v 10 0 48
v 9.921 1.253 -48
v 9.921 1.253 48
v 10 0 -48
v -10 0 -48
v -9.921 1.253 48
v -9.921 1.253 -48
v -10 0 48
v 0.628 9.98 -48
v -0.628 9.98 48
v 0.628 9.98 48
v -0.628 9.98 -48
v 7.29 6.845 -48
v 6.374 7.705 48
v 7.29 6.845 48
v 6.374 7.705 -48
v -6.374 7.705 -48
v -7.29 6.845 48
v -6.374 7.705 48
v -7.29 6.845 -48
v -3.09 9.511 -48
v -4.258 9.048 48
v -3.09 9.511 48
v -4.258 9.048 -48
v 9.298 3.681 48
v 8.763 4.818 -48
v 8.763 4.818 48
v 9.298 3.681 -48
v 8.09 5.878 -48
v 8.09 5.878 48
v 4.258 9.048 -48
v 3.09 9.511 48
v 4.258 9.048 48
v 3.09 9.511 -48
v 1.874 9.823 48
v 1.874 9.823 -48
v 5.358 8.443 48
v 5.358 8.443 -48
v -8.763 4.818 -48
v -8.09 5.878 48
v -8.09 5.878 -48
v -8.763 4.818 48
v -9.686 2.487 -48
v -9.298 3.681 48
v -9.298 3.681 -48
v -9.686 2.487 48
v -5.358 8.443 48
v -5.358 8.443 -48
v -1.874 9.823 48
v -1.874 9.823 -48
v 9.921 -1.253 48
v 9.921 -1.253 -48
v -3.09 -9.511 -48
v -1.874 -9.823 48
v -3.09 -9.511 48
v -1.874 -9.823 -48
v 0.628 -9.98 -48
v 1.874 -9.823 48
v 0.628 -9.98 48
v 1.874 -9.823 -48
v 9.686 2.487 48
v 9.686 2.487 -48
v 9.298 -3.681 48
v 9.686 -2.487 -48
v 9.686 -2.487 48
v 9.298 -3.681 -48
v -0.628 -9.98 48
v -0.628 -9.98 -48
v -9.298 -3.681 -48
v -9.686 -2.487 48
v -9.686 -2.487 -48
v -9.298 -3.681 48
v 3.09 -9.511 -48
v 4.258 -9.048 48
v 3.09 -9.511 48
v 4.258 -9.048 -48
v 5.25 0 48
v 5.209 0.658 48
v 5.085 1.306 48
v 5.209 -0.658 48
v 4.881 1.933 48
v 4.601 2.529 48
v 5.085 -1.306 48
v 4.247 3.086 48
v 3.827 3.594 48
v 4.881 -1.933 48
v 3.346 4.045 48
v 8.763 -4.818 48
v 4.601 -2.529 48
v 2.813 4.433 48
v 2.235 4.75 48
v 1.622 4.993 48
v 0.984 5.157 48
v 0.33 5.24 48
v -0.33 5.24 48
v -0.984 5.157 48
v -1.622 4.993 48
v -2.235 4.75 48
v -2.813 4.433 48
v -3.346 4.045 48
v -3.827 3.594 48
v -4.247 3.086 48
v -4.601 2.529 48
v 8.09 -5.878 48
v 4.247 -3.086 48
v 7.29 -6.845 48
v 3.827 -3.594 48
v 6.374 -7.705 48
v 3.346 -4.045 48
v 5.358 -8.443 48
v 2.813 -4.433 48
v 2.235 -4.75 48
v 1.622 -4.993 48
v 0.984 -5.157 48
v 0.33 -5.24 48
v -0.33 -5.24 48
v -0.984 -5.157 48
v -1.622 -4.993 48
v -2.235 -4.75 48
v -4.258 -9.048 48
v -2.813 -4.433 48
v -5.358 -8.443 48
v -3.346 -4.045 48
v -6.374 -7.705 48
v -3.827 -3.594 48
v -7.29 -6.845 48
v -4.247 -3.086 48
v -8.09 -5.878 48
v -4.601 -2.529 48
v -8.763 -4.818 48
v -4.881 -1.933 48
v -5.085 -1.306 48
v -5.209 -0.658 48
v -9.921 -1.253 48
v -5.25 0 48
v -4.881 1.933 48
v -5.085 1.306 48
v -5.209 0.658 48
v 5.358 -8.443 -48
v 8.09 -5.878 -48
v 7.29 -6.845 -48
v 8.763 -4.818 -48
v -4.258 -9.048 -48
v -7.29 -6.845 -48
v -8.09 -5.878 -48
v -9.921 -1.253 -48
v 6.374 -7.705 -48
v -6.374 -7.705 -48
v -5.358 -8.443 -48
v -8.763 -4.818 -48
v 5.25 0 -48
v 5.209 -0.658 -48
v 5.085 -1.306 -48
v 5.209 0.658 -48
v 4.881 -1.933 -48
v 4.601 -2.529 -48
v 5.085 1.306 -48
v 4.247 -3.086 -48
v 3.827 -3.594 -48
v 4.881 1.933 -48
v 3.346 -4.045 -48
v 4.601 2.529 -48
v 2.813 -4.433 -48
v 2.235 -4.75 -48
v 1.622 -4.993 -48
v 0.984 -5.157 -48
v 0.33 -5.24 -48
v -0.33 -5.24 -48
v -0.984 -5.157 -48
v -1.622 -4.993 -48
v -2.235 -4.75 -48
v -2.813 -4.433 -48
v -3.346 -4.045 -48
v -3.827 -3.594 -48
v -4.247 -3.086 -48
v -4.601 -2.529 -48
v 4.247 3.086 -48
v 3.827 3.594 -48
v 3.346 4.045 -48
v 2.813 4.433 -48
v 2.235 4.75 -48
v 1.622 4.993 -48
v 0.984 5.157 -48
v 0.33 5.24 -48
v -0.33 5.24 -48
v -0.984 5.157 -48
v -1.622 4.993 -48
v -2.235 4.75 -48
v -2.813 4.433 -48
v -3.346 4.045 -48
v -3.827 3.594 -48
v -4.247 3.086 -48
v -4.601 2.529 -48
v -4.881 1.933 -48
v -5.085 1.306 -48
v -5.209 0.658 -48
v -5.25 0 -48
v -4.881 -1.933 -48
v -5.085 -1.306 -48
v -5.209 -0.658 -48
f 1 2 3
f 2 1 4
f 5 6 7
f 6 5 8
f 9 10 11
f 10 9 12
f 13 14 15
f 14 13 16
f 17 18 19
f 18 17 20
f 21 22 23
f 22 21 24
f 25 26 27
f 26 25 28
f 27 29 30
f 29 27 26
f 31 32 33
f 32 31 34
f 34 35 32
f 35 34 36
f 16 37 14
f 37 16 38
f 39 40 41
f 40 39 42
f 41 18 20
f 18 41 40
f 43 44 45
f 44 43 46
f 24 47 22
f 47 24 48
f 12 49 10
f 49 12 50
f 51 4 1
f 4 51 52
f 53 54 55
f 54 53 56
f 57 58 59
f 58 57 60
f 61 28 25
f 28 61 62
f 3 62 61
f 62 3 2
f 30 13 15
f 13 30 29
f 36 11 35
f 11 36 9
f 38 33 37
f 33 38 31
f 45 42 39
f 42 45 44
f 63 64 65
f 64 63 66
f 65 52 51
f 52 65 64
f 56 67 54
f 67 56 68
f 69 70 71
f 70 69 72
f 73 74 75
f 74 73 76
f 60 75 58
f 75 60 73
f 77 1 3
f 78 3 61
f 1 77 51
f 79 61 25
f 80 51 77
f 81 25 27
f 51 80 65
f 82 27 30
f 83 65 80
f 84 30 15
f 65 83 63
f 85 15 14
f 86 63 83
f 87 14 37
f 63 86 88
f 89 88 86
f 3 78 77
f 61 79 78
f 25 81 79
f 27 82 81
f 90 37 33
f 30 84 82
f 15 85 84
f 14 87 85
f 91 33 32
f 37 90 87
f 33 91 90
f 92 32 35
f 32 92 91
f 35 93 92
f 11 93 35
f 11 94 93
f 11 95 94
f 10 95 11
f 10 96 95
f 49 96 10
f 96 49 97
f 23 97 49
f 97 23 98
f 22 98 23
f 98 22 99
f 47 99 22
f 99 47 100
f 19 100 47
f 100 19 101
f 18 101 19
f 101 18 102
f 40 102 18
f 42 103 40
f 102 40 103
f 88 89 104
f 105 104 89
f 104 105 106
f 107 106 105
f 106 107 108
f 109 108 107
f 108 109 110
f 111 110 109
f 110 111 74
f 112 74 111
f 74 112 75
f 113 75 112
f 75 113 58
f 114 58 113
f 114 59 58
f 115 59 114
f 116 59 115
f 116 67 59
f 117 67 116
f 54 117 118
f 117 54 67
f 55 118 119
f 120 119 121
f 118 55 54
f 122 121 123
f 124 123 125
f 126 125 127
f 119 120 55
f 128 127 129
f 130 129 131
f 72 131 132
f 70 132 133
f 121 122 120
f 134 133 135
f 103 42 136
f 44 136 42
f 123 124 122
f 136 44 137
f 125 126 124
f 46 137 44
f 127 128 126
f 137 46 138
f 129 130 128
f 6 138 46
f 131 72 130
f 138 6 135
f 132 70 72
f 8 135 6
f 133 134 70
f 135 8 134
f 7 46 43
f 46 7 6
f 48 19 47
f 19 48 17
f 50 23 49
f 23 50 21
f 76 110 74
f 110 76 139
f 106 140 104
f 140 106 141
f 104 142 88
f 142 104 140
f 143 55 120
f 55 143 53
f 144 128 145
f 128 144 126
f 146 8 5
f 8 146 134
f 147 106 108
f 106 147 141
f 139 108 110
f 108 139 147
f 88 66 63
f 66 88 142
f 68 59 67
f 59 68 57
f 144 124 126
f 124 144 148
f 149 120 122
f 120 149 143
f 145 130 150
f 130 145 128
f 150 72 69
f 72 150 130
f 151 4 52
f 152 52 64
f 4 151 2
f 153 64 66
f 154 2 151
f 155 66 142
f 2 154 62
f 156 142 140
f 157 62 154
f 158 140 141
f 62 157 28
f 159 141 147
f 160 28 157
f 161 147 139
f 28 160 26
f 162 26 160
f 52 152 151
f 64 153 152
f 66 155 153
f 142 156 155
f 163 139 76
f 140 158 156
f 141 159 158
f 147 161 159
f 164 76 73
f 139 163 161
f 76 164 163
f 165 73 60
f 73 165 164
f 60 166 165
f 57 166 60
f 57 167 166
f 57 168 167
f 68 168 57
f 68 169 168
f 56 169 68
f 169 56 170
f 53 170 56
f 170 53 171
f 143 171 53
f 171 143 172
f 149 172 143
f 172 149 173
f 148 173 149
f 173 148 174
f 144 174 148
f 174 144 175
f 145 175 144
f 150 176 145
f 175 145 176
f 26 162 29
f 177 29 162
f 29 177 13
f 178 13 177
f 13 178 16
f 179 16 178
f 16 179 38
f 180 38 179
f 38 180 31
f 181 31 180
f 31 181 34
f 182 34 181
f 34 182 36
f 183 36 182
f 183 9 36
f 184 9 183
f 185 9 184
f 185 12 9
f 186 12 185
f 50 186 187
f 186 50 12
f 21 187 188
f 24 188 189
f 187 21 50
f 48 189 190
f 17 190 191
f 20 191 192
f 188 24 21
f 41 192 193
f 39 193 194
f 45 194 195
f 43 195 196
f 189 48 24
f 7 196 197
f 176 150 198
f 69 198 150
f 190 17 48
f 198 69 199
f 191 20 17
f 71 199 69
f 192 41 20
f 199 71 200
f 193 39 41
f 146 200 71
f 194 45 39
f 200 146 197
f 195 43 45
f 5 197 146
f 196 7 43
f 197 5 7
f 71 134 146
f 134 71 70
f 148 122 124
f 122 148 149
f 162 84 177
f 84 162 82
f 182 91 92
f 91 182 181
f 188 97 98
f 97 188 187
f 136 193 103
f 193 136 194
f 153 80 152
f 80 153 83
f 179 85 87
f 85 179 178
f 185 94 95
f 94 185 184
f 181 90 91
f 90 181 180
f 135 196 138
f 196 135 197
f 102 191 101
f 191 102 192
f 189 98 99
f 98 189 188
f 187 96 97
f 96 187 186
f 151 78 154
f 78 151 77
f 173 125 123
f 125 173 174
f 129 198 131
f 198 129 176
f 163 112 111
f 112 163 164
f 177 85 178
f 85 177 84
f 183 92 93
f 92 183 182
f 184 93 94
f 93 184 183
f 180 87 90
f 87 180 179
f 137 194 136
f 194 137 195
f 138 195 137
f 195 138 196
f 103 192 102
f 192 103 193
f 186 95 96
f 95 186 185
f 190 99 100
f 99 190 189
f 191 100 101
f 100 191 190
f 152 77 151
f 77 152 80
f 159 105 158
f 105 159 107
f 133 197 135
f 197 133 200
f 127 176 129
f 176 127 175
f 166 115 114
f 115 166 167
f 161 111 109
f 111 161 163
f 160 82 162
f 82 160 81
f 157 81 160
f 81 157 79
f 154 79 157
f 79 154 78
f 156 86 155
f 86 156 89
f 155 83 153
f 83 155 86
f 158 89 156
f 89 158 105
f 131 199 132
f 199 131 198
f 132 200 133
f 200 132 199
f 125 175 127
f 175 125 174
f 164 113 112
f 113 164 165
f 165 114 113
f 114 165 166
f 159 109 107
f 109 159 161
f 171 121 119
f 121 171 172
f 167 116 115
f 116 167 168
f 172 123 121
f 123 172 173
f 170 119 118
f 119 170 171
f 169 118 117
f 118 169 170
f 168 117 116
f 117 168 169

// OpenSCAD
$fn = 50;


difference() {
	union() {
		translate(v = [0, 0, -48.0000000000]) {
			cylinder(h = 96, r = 10.0000000000);
		}
	}
	union() {
		translate(v = [0, 0, -100.0000000000]) {
			cylinder(h = 200, r = 5.2500000000);
		}
	}
}
